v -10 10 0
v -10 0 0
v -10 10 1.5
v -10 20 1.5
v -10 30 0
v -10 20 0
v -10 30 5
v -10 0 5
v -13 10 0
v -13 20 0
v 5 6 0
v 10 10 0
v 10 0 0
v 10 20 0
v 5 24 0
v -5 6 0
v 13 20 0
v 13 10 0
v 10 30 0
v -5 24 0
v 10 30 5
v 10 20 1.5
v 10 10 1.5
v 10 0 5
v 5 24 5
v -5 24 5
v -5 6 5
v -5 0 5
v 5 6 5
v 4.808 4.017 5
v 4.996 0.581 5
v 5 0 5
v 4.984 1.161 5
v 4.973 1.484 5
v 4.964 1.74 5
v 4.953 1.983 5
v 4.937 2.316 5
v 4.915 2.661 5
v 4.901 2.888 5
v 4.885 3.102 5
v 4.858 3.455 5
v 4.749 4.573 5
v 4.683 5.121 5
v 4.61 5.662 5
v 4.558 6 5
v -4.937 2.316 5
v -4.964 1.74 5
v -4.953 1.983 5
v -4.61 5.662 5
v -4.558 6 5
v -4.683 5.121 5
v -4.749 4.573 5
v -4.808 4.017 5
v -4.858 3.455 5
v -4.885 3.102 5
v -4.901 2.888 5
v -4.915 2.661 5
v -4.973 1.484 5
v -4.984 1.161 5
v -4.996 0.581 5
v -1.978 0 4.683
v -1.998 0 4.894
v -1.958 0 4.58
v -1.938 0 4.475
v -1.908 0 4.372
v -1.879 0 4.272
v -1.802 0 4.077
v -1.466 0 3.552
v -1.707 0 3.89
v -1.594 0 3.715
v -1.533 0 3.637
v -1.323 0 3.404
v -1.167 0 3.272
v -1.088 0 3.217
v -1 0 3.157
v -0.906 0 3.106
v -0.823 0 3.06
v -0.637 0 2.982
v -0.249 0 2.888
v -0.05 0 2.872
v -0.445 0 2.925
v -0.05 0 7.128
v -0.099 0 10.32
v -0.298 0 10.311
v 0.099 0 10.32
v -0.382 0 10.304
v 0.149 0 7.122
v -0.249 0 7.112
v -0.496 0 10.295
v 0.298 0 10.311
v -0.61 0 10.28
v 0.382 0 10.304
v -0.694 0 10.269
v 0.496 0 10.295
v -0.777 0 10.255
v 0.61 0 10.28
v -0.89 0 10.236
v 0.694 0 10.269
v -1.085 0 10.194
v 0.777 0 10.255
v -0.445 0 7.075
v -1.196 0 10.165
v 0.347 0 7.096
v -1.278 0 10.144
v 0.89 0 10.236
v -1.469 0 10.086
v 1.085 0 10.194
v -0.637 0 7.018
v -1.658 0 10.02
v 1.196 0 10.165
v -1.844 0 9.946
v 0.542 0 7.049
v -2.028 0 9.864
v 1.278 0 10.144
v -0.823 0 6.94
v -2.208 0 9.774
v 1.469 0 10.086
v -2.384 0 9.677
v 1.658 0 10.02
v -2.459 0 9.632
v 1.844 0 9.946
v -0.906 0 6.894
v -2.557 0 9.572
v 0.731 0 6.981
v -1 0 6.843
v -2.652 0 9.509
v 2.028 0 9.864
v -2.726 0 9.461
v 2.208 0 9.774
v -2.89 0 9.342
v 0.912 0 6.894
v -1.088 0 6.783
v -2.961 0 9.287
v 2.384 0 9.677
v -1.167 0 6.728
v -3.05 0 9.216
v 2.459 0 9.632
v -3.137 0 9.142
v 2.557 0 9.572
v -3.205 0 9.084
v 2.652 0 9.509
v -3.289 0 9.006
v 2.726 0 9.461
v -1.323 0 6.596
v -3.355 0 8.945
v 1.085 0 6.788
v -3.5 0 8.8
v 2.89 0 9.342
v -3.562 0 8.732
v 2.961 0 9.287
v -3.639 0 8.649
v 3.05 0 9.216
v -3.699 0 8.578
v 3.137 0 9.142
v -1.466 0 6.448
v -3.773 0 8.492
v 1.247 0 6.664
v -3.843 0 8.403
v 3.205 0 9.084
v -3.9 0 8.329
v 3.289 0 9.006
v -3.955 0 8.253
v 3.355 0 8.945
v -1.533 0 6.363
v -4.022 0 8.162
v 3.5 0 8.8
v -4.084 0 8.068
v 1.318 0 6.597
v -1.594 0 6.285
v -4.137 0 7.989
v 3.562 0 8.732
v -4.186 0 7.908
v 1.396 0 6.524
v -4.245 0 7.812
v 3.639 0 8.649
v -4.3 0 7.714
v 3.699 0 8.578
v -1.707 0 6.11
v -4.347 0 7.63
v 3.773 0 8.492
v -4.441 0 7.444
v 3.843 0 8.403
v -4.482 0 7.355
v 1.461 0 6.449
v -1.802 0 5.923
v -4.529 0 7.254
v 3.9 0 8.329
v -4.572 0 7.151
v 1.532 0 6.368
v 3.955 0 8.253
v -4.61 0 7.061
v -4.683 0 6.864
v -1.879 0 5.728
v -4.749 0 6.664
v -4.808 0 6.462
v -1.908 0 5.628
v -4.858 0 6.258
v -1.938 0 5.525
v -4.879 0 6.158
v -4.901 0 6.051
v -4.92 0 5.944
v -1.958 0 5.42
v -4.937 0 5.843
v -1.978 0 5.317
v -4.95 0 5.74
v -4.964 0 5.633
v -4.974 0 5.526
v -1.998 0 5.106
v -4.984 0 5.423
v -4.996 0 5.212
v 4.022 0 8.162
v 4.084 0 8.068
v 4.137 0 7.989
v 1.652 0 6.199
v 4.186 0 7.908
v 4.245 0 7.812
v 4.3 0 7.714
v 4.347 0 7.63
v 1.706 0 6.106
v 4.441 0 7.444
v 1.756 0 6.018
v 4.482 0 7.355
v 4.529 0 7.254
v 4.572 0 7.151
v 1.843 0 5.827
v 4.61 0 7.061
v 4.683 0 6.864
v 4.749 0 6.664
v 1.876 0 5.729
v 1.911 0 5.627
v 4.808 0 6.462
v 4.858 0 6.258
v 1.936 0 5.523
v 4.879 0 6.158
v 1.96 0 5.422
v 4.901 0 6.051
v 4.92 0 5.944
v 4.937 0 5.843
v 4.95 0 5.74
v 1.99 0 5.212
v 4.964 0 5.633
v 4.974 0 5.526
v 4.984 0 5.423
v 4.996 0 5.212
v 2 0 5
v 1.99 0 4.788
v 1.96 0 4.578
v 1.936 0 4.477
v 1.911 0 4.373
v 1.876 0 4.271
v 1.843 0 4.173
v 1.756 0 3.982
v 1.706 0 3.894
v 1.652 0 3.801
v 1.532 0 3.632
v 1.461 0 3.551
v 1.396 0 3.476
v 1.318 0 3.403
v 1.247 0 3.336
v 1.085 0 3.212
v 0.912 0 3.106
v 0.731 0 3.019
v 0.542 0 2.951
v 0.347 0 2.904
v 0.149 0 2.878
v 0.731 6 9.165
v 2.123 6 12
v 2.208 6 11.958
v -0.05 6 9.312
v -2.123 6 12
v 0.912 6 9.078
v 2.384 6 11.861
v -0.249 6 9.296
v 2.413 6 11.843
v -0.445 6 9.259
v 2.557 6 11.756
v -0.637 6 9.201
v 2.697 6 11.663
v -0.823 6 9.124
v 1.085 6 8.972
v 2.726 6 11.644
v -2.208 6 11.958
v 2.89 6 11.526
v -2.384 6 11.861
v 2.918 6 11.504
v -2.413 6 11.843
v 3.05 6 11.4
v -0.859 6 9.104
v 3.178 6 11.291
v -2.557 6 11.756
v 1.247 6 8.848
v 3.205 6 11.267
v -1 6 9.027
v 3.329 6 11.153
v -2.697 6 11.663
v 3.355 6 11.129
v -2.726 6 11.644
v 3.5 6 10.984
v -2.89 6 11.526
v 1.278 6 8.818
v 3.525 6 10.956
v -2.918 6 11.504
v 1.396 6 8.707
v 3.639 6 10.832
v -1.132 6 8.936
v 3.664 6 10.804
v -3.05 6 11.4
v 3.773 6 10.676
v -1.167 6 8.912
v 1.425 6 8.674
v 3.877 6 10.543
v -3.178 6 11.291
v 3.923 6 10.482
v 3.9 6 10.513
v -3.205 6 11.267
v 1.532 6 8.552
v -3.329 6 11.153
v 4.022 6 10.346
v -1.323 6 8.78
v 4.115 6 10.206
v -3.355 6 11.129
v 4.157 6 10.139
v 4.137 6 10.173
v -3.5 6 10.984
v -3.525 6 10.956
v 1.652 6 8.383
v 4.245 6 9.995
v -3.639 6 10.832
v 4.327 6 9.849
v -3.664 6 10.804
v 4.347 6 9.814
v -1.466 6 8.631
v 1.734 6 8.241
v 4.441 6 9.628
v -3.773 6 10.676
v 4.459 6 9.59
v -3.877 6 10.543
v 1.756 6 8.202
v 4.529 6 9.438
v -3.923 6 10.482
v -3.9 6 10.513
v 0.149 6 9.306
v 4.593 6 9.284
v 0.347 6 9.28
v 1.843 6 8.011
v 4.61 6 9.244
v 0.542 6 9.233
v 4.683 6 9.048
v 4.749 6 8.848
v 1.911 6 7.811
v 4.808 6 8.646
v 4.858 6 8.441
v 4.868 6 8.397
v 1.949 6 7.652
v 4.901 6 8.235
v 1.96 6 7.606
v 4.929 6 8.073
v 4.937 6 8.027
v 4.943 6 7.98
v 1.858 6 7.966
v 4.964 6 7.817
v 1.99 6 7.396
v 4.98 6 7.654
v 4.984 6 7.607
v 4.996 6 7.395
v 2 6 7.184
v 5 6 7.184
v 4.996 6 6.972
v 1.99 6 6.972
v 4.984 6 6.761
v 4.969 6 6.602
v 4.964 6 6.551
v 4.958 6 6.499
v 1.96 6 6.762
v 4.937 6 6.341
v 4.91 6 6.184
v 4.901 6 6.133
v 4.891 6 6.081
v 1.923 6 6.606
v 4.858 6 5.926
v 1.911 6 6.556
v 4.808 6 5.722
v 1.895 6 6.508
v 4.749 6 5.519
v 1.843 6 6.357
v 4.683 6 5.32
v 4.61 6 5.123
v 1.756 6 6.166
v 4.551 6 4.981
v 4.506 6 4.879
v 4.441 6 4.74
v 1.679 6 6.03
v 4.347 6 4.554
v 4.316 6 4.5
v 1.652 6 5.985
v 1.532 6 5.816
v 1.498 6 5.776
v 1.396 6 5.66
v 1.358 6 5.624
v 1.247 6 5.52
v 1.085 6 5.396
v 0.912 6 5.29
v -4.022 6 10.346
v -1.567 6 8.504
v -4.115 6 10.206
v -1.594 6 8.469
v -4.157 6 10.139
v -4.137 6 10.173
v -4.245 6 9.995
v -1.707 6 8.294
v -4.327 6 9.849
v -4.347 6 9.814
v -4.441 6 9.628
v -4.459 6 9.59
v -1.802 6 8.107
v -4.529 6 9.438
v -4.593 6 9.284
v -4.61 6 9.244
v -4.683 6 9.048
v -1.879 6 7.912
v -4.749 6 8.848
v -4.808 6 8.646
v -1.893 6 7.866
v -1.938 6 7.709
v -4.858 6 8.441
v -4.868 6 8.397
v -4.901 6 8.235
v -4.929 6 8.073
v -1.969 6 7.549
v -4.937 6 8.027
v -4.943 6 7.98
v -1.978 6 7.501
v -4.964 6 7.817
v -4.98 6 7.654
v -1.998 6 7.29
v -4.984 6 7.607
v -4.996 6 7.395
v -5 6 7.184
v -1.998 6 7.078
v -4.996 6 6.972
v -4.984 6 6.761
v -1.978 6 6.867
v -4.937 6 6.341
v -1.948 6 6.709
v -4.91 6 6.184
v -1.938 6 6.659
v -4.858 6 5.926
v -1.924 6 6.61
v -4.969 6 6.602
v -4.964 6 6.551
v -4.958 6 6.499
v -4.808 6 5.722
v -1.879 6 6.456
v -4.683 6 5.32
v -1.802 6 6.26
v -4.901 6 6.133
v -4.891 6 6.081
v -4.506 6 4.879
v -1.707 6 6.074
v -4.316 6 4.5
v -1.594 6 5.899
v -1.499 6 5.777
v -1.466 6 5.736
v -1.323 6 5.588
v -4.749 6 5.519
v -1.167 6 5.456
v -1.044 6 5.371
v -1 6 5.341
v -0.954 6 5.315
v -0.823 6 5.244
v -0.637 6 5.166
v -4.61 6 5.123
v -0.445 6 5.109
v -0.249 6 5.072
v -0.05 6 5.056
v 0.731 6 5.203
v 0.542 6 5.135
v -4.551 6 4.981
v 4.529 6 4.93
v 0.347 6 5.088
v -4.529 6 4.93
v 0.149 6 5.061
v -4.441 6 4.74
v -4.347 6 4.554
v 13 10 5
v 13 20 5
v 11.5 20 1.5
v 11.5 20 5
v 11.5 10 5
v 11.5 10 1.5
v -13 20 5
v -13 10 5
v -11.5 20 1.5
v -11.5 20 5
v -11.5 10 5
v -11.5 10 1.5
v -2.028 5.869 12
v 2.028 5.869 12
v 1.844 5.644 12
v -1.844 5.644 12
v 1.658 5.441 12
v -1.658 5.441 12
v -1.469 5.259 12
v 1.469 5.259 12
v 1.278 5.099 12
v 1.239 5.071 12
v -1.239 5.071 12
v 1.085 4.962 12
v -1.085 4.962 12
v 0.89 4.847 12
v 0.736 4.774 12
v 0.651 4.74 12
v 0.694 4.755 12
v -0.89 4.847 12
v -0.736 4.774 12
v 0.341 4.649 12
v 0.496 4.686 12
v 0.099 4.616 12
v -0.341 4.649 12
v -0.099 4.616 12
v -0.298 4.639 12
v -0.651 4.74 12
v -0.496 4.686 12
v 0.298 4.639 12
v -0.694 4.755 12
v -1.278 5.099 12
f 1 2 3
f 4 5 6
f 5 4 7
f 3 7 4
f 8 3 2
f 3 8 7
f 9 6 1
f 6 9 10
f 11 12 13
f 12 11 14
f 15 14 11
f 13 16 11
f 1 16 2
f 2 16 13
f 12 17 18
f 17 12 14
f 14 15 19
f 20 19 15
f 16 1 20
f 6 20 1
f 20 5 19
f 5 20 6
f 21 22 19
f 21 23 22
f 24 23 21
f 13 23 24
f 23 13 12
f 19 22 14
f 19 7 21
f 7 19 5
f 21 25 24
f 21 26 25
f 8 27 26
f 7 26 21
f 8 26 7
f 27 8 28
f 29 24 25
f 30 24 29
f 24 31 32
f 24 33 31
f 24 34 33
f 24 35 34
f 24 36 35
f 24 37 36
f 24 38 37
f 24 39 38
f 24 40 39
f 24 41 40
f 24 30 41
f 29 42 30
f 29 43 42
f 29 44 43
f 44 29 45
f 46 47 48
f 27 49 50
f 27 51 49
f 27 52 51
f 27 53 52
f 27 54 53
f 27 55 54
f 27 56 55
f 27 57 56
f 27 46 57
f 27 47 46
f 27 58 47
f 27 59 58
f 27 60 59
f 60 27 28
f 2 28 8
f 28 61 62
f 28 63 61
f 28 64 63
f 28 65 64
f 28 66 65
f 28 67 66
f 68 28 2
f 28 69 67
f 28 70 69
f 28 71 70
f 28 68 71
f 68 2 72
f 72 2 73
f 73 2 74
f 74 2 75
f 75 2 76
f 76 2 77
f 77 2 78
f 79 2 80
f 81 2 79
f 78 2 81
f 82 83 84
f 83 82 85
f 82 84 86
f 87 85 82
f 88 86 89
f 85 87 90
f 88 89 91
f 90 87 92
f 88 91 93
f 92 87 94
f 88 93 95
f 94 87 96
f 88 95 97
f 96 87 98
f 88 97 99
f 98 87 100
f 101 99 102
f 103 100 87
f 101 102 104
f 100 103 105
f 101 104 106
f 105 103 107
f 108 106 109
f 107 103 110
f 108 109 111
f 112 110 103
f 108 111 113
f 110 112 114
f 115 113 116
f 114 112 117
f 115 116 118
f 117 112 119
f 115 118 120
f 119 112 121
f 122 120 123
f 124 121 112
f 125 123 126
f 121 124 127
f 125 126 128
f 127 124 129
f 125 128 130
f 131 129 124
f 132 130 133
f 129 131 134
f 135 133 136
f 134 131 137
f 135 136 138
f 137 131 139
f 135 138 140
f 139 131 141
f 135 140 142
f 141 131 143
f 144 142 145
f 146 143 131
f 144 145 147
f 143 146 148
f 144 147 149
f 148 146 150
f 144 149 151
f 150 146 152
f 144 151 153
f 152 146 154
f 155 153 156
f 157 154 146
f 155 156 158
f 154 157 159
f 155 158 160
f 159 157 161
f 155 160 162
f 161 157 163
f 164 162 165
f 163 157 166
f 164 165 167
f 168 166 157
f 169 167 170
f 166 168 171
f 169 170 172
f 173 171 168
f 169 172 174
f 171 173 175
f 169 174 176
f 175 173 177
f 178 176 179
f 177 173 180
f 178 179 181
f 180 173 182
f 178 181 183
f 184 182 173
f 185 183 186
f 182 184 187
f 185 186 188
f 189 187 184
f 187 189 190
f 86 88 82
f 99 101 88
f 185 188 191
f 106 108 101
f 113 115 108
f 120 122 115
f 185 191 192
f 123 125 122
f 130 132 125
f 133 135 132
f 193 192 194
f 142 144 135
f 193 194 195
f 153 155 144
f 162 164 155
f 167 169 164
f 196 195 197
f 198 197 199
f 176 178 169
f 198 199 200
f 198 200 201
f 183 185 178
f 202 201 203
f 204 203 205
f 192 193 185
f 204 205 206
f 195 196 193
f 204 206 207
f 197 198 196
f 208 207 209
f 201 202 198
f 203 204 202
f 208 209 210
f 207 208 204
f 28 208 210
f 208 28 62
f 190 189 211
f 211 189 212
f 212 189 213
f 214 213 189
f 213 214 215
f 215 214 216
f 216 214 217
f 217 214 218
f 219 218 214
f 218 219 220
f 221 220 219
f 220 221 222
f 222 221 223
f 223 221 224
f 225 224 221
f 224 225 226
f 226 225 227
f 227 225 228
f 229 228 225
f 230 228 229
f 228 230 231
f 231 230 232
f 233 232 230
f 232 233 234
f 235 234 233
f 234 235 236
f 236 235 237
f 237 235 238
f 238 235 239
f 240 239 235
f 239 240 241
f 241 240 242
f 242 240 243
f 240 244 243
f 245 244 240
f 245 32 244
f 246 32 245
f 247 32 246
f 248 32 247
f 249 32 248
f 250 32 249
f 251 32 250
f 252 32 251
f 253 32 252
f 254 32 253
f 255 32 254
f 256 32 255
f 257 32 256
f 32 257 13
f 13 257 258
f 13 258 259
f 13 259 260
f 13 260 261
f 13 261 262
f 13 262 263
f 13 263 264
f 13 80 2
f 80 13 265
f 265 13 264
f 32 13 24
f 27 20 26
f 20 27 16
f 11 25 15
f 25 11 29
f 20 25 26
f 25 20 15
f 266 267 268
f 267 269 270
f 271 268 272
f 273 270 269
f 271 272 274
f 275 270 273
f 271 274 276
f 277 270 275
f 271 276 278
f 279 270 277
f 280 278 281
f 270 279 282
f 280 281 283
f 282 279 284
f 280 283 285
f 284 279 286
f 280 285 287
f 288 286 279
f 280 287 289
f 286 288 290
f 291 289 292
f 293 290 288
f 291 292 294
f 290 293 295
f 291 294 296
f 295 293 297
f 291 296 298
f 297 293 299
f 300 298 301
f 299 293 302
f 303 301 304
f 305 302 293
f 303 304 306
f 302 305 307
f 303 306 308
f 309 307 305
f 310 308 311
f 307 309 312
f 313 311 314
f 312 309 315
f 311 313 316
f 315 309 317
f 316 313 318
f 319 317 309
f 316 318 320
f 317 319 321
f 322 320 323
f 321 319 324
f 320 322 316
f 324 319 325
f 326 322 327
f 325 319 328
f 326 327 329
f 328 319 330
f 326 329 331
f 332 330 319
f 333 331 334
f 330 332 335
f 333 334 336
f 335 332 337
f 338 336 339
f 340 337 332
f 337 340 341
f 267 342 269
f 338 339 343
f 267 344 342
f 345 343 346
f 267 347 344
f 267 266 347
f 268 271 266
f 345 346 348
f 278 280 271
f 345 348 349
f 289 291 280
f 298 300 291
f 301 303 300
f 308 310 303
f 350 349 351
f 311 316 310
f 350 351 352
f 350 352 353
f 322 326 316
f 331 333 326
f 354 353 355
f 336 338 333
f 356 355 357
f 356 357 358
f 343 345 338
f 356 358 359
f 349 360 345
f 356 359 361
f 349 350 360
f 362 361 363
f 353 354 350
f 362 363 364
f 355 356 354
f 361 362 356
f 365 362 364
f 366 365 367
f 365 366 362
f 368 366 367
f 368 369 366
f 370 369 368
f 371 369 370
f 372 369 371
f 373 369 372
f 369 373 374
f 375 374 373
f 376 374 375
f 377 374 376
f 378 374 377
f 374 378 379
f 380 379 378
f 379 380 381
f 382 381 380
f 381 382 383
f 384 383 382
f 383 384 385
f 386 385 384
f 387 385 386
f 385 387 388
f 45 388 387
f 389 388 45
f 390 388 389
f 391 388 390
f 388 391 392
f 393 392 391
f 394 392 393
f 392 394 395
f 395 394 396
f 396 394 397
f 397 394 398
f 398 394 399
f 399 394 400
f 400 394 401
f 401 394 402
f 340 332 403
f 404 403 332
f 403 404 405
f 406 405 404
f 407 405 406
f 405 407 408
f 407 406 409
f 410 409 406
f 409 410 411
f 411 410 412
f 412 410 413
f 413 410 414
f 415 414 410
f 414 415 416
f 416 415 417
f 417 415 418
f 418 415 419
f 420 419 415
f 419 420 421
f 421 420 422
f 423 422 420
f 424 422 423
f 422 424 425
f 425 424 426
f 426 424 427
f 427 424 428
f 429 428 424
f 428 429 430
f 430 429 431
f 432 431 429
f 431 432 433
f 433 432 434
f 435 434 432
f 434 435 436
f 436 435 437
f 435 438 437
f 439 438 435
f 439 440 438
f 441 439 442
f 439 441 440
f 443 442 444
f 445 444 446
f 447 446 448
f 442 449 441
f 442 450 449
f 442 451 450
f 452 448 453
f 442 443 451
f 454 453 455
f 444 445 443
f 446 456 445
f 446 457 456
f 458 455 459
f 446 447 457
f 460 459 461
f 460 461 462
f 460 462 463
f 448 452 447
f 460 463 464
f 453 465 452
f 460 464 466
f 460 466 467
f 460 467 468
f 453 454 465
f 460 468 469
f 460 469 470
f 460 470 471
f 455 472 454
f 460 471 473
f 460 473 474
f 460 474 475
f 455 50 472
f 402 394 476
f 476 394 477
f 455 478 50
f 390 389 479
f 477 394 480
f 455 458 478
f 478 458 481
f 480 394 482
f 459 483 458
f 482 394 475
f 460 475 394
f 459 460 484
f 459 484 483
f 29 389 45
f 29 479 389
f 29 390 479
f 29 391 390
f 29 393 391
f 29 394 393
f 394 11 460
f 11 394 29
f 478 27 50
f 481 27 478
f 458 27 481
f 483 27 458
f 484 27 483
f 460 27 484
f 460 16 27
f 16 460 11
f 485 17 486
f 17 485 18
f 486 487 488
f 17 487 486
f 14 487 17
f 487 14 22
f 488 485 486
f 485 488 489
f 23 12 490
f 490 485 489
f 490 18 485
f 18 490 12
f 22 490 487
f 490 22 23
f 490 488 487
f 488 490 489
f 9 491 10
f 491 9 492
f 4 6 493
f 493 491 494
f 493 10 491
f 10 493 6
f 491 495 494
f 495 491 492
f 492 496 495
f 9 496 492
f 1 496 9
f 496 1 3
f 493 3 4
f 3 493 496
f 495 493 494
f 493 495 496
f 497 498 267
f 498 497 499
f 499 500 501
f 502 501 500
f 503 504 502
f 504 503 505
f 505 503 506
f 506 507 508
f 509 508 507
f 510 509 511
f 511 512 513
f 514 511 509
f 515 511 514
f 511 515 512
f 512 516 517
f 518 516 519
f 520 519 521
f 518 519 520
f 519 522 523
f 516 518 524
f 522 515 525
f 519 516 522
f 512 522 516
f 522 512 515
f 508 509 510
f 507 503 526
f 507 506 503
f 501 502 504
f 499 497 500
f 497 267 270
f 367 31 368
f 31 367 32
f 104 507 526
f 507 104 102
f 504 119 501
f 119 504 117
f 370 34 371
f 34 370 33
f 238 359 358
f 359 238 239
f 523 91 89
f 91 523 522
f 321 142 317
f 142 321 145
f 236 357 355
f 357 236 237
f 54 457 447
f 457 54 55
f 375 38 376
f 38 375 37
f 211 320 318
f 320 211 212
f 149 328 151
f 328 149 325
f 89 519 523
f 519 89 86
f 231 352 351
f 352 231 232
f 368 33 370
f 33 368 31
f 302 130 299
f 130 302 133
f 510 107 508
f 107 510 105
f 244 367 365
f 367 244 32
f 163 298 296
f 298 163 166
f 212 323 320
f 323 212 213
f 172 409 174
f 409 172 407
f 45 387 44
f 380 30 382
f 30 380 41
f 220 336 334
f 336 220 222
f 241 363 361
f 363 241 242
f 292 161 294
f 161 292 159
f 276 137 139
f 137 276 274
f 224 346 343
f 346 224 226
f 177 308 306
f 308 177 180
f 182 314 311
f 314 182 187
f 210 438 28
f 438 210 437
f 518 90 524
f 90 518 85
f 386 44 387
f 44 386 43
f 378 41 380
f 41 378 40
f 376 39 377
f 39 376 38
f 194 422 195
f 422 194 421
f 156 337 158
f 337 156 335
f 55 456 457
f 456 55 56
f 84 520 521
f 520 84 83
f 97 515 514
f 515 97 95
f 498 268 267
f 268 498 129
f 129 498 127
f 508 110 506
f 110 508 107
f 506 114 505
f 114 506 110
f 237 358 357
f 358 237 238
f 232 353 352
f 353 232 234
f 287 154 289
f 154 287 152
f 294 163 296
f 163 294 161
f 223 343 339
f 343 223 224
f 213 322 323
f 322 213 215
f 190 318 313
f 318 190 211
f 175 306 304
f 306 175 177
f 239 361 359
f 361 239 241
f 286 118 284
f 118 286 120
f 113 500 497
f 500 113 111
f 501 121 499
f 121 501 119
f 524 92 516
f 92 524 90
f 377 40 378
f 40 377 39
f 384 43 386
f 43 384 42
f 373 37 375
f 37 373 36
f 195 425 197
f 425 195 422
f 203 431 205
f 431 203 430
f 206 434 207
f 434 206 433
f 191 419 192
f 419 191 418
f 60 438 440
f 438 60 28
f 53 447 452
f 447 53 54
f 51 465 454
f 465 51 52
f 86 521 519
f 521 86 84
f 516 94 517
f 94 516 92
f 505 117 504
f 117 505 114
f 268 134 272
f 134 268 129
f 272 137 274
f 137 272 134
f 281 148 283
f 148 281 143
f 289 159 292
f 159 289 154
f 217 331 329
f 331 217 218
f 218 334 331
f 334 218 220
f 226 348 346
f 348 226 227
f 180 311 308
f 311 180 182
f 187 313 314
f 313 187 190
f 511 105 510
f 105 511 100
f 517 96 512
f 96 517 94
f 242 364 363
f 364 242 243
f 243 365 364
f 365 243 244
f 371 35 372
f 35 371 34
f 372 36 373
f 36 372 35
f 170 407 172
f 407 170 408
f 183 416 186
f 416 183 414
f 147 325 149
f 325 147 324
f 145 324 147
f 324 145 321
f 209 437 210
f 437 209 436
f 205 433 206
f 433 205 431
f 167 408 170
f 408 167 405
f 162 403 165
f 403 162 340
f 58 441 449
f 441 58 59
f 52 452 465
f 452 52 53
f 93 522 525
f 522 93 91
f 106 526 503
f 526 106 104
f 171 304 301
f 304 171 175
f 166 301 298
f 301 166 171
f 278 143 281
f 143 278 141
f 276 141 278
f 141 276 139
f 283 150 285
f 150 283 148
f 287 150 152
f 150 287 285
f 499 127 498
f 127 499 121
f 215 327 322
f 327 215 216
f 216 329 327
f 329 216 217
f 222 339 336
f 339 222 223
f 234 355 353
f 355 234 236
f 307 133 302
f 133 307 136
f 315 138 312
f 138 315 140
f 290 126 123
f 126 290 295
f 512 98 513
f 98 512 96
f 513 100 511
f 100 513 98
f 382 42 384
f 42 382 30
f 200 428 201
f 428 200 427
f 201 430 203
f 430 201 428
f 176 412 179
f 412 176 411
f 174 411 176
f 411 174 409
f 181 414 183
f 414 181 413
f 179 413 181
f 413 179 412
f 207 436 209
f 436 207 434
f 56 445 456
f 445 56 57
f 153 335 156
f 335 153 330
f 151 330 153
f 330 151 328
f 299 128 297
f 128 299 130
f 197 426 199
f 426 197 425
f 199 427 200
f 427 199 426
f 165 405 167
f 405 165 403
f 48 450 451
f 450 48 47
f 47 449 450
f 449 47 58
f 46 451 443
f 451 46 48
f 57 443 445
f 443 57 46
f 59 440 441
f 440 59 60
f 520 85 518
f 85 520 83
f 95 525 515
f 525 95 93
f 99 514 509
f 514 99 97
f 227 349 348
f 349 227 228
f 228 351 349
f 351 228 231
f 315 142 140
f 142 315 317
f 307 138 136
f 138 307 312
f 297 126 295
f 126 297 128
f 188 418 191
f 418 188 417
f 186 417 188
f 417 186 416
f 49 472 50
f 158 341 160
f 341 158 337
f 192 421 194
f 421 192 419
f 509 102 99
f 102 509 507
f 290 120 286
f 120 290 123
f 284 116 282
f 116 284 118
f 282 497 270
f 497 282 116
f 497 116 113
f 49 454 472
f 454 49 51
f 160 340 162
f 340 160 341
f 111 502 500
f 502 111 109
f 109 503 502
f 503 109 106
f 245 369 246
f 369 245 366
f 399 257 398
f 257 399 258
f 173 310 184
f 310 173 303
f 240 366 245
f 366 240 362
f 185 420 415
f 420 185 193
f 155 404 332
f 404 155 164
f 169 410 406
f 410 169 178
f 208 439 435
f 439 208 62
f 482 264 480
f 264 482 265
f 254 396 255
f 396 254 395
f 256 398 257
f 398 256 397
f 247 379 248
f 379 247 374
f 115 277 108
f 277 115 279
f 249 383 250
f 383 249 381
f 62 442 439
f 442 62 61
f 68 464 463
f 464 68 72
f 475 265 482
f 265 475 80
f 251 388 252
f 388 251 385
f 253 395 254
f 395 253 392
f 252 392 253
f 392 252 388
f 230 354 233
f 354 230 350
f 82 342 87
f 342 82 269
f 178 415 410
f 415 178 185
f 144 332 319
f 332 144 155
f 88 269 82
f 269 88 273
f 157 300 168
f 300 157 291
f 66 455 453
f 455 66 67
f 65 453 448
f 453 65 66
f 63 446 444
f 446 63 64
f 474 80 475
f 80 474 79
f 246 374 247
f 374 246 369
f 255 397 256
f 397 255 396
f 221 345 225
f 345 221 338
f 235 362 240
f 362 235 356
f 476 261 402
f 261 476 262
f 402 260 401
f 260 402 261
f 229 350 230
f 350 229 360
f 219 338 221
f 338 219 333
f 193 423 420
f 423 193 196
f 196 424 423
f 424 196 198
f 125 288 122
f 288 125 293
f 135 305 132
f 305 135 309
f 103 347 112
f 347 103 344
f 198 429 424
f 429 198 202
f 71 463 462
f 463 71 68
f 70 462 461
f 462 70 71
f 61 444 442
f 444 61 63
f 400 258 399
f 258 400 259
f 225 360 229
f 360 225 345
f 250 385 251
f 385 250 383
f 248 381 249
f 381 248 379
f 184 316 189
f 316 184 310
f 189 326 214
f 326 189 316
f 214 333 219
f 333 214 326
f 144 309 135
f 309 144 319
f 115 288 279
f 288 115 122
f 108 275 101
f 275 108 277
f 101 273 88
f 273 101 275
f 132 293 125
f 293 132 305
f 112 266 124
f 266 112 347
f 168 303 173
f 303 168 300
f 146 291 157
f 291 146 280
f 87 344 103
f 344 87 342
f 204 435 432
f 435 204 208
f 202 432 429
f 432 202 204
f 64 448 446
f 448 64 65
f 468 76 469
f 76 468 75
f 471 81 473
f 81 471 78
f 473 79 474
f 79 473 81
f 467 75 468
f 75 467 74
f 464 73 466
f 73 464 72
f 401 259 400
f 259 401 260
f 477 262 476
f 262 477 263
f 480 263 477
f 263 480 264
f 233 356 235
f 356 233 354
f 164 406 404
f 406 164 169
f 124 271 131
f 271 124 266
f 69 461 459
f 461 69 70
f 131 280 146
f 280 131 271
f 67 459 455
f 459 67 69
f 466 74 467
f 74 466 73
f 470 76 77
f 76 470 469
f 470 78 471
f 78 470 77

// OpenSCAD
$fs = $preview ? 0.5 : 0.2;
$fa = $preview ? 10 : 2;

// basic block
bw = 20;
bh = 5;
bl = 30;

// legs that keep it in place
c0 = 10;
cl = 10;
cw = 3;
ct = 1.5;

// cutout for the power connector
pw = 10;
pl = 18;

// antenna support
ash = 7;
asd = 6;

// antenna itself
ad = 4;  // diameter
od = 10; // outer diameter
aa = 20; // angle 

eps = 0.5;

translate([0, 0, bh])
    mirror([0, 0, 1])
        model();

module model() {
    difference() {
        model0();
        rotate([90 - aa, 0, 0])
            translate([0, 0, -2 * asd])
                cylinder(d = ad, h = asd * 4);
    }
}

module model0() {
    difference() {
        translate([-bw / 2, 0, 0])
            cube([bw, bl, bh]);
        translate([-pw / 2, (bl - pl) / 2, -eps]) 
            cube([pw, pl, bh + 2 * eps]);
    }
        
    translate([bw / 2, 0, 0]) 
        leg();
    translate([-bw / 2, 0, 0]) mirror([1, 0, 0])
        leg();

    intersection() {
        translate([-bw / 2, 0, -ash])
            cube([bw, asd, ash + eps]);
        
        rotate([90 - aa, 0, 0])
            translate([0, 0, -2 * asd])
                cylinder(d = od, h = asd * 4);
    }
}
    
module leg() {
    translate([0, c0, 0])
        difference() {
            cube([cw, cl, bh]);
            translate([0, -eps, -eps])
                cube([cw / 2, cl + 2 * eps, bh - ct + eps]);
        }
}
